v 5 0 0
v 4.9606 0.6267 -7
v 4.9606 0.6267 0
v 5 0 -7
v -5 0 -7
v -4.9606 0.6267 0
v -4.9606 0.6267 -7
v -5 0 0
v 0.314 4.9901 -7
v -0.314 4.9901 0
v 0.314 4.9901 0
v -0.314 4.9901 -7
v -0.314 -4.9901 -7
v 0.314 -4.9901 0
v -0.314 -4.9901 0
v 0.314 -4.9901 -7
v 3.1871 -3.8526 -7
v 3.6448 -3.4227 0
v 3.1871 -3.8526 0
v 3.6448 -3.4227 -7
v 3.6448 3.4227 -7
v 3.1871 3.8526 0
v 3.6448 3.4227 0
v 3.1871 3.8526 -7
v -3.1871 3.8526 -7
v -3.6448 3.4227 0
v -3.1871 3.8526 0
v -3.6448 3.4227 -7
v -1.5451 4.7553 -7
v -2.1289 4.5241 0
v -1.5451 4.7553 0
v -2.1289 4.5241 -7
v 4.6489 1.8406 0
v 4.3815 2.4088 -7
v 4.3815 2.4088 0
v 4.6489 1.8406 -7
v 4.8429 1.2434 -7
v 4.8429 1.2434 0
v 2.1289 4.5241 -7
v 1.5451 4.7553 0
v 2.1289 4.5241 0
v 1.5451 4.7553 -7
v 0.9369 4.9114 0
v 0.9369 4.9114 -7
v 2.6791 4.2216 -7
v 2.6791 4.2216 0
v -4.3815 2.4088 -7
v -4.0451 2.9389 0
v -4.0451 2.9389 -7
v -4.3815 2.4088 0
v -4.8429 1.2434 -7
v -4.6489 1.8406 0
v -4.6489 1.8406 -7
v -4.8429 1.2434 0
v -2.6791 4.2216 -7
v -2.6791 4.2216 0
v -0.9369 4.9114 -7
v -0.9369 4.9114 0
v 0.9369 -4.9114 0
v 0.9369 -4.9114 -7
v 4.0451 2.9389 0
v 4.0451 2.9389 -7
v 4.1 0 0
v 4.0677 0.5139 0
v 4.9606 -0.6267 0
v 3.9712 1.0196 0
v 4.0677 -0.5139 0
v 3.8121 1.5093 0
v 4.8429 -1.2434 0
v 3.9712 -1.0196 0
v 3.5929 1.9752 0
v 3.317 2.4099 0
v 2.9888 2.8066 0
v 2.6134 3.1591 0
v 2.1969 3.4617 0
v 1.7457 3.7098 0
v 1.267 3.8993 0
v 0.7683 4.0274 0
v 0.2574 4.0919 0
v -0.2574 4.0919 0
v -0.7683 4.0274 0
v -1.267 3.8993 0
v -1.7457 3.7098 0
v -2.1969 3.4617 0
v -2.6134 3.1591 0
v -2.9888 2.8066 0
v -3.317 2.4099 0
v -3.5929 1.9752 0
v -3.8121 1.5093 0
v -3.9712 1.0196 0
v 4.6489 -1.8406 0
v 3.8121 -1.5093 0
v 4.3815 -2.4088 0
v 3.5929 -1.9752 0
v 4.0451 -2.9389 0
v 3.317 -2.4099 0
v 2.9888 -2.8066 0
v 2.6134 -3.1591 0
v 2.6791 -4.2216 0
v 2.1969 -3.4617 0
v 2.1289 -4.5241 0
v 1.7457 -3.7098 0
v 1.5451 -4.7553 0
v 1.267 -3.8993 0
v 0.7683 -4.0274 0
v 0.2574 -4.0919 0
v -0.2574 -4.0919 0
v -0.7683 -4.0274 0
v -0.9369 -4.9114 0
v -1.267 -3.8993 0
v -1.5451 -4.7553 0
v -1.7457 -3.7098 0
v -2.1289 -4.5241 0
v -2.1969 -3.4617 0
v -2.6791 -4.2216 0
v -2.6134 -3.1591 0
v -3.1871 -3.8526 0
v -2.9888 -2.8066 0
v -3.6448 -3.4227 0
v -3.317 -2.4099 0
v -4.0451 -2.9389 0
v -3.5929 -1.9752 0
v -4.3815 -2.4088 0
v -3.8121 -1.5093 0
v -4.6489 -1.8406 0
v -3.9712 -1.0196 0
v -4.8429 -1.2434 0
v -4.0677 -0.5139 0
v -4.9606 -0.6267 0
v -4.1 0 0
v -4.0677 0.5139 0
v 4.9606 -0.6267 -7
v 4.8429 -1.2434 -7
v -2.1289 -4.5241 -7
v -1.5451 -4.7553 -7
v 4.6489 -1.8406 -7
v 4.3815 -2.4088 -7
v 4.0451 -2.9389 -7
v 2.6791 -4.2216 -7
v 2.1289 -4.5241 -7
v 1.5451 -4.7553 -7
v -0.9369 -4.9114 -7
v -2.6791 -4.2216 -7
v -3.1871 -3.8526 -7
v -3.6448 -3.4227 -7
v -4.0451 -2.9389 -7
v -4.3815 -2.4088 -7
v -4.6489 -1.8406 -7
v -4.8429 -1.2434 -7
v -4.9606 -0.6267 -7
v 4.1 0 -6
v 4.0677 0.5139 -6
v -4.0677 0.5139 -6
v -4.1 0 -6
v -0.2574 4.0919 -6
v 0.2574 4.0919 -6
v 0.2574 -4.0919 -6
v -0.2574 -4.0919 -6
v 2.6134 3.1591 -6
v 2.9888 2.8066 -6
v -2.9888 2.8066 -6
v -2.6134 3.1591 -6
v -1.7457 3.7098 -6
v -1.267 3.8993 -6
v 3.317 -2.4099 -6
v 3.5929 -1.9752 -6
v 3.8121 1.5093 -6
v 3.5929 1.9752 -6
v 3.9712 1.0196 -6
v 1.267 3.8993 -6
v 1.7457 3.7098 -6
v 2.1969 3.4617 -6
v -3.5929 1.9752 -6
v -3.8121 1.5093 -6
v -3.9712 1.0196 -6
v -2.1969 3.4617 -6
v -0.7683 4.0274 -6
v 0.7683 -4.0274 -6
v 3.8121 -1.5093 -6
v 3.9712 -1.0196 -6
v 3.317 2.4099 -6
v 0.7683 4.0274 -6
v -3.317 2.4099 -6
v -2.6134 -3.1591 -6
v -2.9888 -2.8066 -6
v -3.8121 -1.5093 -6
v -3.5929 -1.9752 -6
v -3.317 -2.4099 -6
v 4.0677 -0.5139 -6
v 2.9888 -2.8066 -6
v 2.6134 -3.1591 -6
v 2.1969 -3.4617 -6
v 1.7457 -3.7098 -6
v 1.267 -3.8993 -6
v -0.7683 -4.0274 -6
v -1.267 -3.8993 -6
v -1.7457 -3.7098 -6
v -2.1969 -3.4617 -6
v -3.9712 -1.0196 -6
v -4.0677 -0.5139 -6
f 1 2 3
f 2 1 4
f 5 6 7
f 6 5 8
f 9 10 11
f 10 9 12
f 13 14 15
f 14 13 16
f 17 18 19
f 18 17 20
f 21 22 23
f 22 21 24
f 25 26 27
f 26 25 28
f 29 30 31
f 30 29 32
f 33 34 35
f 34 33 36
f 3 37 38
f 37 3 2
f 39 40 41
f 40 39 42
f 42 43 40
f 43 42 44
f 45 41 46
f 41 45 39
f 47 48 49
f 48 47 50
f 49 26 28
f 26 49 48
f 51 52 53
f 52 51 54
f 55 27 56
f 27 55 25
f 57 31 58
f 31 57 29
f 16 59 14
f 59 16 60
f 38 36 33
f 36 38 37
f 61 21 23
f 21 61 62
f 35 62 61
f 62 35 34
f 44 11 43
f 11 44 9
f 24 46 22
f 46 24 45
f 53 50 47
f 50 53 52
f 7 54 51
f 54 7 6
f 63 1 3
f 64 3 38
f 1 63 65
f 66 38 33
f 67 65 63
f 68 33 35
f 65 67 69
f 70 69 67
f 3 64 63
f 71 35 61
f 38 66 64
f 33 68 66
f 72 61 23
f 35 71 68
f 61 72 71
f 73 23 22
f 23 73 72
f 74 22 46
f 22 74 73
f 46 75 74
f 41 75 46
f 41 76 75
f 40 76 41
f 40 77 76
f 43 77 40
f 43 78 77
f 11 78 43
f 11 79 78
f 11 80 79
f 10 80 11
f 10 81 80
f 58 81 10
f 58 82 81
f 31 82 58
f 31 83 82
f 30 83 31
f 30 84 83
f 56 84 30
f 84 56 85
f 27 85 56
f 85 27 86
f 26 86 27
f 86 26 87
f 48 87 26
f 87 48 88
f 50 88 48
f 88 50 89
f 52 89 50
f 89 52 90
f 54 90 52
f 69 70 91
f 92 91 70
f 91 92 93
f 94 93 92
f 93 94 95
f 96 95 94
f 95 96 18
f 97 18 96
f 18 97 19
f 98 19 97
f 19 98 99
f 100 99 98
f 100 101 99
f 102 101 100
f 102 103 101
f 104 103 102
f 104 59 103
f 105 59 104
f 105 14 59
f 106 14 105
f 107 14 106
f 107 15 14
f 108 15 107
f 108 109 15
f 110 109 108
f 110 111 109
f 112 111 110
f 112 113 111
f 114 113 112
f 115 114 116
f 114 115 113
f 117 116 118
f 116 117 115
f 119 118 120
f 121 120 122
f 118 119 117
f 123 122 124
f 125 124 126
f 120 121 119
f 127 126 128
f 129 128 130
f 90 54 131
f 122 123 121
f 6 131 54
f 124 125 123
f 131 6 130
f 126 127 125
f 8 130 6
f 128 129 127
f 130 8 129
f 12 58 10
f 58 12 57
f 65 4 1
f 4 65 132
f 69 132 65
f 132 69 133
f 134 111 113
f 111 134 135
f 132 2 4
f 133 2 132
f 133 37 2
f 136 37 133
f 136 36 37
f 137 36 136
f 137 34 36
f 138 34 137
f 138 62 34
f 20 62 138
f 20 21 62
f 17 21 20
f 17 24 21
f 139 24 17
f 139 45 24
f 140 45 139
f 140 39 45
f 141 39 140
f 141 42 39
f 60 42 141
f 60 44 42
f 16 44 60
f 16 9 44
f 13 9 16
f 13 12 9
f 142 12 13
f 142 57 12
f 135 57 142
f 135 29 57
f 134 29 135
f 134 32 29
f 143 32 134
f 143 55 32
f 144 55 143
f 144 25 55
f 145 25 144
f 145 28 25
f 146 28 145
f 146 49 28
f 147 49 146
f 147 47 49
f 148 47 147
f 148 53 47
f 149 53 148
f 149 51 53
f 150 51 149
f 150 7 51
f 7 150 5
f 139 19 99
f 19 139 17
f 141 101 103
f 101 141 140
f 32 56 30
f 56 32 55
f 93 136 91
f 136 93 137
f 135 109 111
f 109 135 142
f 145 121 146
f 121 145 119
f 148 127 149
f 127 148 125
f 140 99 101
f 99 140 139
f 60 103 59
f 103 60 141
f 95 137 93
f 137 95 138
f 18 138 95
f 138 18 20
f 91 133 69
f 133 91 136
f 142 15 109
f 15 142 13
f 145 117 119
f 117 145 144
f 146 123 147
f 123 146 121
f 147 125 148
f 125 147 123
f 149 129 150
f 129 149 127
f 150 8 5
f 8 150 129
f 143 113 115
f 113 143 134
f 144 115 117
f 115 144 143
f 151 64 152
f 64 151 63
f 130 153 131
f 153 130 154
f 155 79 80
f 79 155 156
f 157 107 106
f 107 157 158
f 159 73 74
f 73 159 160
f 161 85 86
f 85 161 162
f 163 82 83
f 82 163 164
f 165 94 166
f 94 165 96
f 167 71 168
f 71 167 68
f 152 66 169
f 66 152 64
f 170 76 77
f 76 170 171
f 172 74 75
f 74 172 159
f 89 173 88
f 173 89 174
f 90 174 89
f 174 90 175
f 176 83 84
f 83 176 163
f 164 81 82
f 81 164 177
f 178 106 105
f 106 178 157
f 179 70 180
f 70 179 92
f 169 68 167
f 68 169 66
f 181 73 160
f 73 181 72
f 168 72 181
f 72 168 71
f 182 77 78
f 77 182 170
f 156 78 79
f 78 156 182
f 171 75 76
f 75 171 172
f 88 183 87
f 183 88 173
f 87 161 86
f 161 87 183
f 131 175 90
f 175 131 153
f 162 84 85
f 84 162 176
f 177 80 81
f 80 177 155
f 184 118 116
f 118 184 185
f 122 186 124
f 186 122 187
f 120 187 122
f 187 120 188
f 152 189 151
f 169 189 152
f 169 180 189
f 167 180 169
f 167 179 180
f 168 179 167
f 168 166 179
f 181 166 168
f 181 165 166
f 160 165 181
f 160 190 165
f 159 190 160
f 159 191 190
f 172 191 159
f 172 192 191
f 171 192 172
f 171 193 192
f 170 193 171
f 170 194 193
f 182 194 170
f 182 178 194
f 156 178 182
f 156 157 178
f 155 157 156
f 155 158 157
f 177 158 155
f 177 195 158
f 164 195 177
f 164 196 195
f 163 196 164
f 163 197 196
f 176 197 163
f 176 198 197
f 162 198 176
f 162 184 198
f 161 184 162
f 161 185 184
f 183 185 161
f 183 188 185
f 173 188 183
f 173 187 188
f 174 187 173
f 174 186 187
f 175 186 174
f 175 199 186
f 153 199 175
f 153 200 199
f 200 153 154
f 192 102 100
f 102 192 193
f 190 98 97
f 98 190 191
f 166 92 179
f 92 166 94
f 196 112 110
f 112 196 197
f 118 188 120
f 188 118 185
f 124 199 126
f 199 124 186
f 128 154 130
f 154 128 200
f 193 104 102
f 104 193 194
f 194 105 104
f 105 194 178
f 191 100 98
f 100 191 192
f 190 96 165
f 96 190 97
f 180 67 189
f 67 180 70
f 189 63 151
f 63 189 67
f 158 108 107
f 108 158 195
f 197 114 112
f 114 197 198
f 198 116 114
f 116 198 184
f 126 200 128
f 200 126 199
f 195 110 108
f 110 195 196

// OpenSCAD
$fn = 50;


difference() {
	union() {
		translate(v = [0, 0, -7.0000000000]) {
			cylinder(h = 7, r = 5.0000000000);
		}
	}
	union() {
		#translate(v = [0, 0, -6.0000000000]) {
			cylinder(h = 6, r = 4.1000000000);
		}
	}
}
